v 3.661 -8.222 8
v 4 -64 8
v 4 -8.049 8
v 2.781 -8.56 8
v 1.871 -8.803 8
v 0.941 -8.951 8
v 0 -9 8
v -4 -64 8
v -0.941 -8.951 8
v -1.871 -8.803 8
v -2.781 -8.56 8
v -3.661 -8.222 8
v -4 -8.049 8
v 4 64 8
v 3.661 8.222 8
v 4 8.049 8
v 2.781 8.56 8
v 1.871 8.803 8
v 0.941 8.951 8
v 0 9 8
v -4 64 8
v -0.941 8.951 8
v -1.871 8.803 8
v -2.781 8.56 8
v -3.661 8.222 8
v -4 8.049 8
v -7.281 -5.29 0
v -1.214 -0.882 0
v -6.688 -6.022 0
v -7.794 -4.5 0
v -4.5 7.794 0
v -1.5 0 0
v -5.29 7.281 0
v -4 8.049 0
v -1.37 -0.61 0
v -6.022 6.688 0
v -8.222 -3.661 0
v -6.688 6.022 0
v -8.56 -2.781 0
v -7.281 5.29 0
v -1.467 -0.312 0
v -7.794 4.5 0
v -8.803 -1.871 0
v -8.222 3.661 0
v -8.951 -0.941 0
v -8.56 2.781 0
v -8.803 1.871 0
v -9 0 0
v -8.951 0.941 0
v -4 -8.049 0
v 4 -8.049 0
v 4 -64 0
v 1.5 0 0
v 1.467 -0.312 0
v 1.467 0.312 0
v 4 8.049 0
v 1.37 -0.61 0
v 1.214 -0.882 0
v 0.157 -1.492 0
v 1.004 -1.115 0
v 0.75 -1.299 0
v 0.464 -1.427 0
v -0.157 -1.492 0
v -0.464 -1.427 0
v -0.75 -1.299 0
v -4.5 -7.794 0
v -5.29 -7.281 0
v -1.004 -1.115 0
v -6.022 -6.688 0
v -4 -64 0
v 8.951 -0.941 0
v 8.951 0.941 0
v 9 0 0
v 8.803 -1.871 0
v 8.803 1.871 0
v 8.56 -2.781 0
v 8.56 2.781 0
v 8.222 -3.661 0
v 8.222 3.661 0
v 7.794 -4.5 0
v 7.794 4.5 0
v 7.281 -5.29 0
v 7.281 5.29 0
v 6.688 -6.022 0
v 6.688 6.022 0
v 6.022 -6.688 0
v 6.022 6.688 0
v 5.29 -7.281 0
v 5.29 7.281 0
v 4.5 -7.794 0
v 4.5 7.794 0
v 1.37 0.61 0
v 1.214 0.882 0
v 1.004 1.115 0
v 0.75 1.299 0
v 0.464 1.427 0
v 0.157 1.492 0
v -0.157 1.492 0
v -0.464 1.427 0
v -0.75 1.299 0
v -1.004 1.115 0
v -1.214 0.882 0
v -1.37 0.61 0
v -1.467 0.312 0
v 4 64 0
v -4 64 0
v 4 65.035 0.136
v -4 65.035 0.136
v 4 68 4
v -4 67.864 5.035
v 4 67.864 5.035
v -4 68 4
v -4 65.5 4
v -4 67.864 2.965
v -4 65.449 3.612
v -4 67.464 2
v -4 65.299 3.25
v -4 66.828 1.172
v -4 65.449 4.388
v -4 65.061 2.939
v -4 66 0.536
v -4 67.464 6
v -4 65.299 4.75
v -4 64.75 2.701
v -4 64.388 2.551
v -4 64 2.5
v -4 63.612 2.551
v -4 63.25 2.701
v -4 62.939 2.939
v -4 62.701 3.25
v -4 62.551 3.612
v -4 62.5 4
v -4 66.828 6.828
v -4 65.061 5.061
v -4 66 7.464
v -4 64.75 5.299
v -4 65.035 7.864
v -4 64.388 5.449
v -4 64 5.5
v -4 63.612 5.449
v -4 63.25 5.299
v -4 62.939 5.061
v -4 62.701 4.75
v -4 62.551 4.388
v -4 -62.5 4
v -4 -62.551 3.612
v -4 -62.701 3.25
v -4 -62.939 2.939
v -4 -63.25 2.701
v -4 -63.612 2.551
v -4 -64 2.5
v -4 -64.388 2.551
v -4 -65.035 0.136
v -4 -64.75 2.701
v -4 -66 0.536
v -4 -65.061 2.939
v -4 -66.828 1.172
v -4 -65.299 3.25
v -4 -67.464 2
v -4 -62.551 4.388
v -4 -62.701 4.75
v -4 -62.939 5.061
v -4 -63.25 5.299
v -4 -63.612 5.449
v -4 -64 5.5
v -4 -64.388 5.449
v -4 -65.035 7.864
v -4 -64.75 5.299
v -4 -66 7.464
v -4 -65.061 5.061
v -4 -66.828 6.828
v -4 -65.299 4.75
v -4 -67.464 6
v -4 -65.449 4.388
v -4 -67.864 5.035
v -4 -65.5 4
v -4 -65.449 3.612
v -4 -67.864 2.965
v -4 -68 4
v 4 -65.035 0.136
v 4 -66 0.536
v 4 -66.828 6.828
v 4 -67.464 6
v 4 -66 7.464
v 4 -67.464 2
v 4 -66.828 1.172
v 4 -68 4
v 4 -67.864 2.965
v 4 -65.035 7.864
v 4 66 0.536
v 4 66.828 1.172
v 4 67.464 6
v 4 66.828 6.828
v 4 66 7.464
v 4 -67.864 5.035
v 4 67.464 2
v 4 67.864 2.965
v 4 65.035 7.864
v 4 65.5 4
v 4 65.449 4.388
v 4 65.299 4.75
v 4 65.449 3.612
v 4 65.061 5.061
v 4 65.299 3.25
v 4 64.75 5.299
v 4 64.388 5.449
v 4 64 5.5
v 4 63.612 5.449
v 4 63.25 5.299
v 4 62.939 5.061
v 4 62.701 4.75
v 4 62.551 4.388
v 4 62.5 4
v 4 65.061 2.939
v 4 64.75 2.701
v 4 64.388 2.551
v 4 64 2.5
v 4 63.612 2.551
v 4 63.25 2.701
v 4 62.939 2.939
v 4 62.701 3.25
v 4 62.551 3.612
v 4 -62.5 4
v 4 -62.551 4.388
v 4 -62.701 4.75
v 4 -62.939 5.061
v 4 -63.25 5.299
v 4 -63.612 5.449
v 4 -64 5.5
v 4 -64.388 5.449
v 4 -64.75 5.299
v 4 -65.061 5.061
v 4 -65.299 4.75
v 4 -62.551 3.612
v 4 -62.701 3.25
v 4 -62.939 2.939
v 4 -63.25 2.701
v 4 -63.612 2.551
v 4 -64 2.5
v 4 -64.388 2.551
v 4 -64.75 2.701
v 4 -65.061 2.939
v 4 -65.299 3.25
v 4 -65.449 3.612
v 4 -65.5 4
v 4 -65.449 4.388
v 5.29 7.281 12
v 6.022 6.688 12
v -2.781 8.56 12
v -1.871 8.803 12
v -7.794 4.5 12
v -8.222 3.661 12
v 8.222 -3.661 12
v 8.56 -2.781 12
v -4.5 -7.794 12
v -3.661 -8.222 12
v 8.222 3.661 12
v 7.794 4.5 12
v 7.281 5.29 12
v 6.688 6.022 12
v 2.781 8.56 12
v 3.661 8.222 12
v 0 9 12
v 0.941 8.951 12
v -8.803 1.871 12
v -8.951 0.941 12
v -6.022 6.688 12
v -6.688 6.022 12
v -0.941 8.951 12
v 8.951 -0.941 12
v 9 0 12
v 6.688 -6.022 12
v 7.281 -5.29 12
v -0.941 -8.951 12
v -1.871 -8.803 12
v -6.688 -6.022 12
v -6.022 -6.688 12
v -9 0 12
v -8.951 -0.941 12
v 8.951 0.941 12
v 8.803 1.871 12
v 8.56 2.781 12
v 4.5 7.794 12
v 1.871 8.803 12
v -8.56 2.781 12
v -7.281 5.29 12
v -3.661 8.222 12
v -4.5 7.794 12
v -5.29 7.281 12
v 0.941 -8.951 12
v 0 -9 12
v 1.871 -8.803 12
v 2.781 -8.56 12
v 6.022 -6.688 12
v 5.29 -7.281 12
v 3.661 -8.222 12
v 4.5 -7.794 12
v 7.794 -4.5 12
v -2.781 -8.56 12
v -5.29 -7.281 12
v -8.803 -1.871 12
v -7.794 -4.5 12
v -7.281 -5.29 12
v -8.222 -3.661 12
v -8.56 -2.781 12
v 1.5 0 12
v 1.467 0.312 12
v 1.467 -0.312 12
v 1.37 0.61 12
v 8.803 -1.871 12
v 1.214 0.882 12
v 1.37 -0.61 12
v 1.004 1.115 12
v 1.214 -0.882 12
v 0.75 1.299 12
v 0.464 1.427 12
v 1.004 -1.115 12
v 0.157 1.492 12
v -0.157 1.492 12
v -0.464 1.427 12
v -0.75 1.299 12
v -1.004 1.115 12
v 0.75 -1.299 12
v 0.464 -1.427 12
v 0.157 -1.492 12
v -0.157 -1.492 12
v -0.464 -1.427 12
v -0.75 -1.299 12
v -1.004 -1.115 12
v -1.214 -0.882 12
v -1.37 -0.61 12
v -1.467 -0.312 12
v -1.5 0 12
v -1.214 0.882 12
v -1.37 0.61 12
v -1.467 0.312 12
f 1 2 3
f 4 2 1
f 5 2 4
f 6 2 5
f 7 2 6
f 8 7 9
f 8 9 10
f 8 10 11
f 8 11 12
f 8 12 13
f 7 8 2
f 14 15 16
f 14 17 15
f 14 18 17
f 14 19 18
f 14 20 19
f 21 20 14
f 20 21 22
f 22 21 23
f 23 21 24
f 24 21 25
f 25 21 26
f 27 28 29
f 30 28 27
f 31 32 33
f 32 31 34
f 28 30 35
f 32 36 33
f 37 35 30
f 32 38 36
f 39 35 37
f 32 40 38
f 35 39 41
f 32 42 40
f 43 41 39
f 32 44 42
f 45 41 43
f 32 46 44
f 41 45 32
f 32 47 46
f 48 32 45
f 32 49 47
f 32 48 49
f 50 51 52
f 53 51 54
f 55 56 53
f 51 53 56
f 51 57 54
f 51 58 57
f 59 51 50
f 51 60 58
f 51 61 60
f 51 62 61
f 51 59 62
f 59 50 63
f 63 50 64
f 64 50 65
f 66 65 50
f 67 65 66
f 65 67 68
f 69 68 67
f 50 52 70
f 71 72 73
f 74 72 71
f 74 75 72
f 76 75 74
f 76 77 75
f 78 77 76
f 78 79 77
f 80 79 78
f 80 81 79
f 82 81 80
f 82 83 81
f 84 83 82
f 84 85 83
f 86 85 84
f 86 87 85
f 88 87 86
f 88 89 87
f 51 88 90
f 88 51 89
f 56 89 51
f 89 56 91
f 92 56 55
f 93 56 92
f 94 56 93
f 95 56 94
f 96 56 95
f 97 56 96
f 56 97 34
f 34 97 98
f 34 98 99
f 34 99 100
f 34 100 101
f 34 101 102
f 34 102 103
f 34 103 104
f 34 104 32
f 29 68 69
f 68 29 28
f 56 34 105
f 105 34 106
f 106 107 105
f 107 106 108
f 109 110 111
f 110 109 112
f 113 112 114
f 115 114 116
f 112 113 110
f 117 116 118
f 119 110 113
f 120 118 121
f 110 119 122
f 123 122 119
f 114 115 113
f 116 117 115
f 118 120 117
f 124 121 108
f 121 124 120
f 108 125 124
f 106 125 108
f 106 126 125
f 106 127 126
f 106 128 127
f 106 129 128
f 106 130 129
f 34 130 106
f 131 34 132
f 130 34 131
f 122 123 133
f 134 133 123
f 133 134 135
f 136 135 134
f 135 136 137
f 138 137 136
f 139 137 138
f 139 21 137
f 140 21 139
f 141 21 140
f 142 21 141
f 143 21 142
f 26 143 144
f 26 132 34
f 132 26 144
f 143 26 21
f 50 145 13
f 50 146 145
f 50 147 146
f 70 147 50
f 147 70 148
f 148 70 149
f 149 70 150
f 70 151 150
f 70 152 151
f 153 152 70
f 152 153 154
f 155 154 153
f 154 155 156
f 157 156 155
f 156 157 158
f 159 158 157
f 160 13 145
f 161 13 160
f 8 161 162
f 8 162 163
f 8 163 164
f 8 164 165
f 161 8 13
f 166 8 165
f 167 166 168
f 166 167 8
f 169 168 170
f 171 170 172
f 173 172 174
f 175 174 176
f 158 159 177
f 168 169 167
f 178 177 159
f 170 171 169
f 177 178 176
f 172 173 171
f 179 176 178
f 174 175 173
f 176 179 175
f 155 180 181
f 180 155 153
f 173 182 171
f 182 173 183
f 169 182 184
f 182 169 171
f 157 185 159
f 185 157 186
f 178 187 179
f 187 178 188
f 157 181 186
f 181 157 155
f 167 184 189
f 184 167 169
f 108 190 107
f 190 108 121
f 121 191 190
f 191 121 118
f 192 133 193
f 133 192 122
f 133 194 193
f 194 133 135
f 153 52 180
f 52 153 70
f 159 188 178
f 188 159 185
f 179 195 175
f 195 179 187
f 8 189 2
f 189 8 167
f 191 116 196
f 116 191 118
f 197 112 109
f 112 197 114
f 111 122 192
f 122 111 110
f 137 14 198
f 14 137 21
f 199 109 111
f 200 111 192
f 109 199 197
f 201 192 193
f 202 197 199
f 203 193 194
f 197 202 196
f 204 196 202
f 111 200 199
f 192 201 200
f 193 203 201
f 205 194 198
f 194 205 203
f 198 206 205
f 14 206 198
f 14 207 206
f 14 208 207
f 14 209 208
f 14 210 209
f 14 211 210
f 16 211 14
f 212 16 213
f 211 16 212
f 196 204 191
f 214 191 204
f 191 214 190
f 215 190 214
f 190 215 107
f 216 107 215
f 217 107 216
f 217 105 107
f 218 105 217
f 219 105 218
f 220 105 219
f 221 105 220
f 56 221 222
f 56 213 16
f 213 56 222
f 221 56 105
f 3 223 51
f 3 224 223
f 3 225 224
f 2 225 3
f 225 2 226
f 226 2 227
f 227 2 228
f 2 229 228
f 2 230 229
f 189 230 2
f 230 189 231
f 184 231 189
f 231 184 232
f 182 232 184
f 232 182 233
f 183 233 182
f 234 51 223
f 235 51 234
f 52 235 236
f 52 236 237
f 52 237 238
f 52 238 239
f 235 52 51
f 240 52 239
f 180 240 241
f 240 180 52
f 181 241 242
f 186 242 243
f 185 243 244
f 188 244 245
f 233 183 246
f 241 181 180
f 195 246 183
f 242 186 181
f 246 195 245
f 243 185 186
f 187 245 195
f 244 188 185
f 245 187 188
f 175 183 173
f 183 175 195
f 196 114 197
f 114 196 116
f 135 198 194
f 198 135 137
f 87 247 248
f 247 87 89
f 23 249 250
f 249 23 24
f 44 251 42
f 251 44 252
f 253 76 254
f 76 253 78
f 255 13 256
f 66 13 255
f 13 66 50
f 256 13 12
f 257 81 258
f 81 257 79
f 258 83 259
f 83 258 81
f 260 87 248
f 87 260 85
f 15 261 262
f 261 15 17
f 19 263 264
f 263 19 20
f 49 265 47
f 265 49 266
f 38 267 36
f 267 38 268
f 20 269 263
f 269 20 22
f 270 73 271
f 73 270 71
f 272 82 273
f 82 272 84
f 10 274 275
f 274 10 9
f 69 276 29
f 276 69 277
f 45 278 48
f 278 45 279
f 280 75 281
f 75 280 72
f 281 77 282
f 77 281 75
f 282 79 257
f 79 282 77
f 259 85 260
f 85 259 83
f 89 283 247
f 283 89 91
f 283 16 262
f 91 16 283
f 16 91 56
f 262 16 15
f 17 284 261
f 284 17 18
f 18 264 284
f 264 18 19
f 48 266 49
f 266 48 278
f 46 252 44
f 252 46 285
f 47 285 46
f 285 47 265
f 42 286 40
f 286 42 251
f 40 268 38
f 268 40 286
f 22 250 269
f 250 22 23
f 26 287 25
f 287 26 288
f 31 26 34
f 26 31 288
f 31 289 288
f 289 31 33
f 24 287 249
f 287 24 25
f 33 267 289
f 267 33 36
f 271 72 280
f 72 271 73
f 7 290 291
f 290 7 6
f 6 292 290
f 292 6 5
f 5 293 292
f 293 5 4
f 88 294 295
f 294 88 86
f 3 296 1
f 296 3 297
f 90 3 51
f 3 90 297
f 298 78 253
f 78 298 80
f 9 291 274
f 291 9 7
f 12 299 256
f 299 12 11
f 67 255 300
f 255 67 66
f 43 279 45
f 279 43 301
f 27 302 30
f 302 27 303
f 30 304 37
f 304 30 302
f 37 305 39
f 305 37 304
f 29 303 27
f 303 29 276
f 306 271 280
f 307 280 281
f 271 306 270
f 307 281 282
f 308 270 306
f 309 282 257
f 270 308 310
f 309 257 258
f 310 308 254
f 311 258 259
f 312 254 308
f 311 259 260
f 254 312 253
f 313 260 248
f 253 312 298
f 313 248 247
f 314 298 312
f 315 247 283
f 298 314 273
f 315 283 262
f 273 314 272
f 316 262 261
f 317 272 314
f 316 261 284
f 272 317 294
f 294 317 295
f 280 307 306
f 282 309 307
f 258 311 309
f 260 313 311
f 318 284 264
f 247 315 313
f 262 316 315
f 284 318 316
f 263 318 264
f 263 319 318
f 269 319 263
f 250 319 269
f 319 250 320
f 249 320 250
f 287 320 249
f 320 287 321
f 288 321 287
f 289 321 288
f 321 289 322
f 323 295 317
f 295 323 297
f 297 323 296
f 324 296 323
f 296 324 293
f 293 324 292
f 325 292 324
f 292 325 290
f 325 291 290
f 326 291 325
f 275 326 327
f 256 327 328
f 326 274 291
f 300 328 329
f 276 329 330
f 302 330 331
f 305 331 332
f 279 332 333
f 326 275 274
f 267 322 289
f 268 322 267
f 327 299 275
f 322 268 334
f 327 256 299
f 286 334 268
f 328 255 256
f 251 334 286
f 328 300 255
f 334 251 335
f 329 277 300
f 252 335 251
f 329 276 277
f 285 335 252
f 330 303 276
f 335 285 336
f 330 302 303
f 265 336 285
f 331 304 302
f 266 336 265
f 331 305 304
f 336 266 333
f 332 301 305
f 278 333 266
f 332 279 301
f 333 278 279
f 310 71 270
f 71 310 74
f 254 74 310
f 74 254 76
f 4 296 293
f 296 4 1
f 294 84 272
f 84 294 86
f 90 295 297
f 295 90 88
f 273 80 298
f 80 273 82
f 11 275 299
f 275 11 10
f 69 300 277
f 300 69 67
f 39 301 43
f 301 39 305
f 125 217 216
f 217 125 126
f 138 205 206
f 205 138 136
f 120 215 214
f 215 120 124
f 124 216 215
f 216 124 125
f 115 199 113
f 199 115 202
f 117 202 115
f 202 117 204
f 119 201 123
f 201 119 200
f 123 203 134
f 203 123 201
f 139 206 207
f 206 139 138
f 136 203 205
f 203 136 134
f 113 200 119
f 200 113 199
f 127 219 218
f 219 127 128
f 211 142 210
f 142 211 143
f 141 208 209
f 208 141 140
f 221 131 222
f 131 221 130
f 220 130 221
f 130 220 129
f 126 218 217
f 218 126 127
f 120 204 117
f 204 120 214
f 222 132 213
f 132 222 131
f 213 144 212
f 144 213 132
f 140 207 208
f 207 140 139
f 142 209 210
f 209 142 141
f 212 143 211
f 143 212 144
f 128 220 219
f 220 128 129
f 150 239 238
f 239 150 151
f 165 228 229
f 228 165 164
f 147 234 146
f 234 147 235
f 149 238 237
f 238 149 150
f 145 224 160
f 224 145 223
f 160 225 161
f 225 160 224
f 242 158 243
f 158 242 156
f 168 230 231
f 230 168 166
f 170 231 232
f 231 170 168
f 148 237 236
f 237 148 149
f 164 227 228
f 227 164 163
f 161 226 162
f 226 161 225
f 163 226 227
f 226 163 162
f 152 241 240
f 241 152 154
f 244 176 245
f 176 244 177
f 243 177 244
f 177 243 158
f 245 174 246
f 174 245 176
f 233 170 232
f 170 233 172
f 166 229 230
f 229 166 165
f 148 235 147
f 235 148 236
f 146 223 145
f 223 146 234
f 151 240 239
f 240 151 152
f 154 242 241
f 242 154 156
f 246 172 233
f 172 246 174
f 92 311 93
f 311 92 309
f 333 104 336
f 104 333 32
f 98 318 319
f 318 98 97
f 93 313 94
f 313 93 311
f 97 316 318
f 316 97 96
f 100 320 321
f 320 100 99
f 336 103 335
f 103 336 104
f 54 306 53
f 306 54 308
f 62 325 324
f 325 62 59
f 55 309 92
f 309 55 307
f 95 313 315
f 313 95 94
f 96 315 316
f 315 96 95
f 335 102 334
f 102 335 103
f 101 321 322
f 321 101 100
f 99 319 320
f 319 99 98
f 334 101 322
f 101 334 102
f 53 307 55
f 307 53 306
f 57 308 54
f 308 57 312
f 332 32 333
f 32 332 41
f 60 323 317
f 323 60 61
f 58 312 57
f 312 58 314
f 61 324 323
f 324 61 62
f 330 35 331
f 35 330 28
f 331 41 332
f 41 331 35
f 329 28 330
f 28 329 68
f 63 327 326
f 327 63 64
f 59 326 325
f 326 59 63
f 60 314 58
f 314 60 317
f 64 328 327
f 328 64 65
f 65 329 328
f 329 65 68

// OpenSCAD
difference(){
union(){
hull()
{
translate([-4,64,4])rotate([0,90,0])
cylinder(d=8,h=8,$fn=24);
translate([-4,-64,4])rotate([0,90,0])
cylinder(d=8,h=8,$fn=24);
}
cylinder(d=18,h=12,$fn=60);
}
translate([-5,64,4])rotate([0,90,0])
cylinder(d=3,h=10,$fn=24);
translate([-5,-64,4])rotate([0,90,0])
cylinder(d=3,h=10,$fn=24);
translate([0,0,-1])cylinder(d=3,h=20,$fn=30);
}
